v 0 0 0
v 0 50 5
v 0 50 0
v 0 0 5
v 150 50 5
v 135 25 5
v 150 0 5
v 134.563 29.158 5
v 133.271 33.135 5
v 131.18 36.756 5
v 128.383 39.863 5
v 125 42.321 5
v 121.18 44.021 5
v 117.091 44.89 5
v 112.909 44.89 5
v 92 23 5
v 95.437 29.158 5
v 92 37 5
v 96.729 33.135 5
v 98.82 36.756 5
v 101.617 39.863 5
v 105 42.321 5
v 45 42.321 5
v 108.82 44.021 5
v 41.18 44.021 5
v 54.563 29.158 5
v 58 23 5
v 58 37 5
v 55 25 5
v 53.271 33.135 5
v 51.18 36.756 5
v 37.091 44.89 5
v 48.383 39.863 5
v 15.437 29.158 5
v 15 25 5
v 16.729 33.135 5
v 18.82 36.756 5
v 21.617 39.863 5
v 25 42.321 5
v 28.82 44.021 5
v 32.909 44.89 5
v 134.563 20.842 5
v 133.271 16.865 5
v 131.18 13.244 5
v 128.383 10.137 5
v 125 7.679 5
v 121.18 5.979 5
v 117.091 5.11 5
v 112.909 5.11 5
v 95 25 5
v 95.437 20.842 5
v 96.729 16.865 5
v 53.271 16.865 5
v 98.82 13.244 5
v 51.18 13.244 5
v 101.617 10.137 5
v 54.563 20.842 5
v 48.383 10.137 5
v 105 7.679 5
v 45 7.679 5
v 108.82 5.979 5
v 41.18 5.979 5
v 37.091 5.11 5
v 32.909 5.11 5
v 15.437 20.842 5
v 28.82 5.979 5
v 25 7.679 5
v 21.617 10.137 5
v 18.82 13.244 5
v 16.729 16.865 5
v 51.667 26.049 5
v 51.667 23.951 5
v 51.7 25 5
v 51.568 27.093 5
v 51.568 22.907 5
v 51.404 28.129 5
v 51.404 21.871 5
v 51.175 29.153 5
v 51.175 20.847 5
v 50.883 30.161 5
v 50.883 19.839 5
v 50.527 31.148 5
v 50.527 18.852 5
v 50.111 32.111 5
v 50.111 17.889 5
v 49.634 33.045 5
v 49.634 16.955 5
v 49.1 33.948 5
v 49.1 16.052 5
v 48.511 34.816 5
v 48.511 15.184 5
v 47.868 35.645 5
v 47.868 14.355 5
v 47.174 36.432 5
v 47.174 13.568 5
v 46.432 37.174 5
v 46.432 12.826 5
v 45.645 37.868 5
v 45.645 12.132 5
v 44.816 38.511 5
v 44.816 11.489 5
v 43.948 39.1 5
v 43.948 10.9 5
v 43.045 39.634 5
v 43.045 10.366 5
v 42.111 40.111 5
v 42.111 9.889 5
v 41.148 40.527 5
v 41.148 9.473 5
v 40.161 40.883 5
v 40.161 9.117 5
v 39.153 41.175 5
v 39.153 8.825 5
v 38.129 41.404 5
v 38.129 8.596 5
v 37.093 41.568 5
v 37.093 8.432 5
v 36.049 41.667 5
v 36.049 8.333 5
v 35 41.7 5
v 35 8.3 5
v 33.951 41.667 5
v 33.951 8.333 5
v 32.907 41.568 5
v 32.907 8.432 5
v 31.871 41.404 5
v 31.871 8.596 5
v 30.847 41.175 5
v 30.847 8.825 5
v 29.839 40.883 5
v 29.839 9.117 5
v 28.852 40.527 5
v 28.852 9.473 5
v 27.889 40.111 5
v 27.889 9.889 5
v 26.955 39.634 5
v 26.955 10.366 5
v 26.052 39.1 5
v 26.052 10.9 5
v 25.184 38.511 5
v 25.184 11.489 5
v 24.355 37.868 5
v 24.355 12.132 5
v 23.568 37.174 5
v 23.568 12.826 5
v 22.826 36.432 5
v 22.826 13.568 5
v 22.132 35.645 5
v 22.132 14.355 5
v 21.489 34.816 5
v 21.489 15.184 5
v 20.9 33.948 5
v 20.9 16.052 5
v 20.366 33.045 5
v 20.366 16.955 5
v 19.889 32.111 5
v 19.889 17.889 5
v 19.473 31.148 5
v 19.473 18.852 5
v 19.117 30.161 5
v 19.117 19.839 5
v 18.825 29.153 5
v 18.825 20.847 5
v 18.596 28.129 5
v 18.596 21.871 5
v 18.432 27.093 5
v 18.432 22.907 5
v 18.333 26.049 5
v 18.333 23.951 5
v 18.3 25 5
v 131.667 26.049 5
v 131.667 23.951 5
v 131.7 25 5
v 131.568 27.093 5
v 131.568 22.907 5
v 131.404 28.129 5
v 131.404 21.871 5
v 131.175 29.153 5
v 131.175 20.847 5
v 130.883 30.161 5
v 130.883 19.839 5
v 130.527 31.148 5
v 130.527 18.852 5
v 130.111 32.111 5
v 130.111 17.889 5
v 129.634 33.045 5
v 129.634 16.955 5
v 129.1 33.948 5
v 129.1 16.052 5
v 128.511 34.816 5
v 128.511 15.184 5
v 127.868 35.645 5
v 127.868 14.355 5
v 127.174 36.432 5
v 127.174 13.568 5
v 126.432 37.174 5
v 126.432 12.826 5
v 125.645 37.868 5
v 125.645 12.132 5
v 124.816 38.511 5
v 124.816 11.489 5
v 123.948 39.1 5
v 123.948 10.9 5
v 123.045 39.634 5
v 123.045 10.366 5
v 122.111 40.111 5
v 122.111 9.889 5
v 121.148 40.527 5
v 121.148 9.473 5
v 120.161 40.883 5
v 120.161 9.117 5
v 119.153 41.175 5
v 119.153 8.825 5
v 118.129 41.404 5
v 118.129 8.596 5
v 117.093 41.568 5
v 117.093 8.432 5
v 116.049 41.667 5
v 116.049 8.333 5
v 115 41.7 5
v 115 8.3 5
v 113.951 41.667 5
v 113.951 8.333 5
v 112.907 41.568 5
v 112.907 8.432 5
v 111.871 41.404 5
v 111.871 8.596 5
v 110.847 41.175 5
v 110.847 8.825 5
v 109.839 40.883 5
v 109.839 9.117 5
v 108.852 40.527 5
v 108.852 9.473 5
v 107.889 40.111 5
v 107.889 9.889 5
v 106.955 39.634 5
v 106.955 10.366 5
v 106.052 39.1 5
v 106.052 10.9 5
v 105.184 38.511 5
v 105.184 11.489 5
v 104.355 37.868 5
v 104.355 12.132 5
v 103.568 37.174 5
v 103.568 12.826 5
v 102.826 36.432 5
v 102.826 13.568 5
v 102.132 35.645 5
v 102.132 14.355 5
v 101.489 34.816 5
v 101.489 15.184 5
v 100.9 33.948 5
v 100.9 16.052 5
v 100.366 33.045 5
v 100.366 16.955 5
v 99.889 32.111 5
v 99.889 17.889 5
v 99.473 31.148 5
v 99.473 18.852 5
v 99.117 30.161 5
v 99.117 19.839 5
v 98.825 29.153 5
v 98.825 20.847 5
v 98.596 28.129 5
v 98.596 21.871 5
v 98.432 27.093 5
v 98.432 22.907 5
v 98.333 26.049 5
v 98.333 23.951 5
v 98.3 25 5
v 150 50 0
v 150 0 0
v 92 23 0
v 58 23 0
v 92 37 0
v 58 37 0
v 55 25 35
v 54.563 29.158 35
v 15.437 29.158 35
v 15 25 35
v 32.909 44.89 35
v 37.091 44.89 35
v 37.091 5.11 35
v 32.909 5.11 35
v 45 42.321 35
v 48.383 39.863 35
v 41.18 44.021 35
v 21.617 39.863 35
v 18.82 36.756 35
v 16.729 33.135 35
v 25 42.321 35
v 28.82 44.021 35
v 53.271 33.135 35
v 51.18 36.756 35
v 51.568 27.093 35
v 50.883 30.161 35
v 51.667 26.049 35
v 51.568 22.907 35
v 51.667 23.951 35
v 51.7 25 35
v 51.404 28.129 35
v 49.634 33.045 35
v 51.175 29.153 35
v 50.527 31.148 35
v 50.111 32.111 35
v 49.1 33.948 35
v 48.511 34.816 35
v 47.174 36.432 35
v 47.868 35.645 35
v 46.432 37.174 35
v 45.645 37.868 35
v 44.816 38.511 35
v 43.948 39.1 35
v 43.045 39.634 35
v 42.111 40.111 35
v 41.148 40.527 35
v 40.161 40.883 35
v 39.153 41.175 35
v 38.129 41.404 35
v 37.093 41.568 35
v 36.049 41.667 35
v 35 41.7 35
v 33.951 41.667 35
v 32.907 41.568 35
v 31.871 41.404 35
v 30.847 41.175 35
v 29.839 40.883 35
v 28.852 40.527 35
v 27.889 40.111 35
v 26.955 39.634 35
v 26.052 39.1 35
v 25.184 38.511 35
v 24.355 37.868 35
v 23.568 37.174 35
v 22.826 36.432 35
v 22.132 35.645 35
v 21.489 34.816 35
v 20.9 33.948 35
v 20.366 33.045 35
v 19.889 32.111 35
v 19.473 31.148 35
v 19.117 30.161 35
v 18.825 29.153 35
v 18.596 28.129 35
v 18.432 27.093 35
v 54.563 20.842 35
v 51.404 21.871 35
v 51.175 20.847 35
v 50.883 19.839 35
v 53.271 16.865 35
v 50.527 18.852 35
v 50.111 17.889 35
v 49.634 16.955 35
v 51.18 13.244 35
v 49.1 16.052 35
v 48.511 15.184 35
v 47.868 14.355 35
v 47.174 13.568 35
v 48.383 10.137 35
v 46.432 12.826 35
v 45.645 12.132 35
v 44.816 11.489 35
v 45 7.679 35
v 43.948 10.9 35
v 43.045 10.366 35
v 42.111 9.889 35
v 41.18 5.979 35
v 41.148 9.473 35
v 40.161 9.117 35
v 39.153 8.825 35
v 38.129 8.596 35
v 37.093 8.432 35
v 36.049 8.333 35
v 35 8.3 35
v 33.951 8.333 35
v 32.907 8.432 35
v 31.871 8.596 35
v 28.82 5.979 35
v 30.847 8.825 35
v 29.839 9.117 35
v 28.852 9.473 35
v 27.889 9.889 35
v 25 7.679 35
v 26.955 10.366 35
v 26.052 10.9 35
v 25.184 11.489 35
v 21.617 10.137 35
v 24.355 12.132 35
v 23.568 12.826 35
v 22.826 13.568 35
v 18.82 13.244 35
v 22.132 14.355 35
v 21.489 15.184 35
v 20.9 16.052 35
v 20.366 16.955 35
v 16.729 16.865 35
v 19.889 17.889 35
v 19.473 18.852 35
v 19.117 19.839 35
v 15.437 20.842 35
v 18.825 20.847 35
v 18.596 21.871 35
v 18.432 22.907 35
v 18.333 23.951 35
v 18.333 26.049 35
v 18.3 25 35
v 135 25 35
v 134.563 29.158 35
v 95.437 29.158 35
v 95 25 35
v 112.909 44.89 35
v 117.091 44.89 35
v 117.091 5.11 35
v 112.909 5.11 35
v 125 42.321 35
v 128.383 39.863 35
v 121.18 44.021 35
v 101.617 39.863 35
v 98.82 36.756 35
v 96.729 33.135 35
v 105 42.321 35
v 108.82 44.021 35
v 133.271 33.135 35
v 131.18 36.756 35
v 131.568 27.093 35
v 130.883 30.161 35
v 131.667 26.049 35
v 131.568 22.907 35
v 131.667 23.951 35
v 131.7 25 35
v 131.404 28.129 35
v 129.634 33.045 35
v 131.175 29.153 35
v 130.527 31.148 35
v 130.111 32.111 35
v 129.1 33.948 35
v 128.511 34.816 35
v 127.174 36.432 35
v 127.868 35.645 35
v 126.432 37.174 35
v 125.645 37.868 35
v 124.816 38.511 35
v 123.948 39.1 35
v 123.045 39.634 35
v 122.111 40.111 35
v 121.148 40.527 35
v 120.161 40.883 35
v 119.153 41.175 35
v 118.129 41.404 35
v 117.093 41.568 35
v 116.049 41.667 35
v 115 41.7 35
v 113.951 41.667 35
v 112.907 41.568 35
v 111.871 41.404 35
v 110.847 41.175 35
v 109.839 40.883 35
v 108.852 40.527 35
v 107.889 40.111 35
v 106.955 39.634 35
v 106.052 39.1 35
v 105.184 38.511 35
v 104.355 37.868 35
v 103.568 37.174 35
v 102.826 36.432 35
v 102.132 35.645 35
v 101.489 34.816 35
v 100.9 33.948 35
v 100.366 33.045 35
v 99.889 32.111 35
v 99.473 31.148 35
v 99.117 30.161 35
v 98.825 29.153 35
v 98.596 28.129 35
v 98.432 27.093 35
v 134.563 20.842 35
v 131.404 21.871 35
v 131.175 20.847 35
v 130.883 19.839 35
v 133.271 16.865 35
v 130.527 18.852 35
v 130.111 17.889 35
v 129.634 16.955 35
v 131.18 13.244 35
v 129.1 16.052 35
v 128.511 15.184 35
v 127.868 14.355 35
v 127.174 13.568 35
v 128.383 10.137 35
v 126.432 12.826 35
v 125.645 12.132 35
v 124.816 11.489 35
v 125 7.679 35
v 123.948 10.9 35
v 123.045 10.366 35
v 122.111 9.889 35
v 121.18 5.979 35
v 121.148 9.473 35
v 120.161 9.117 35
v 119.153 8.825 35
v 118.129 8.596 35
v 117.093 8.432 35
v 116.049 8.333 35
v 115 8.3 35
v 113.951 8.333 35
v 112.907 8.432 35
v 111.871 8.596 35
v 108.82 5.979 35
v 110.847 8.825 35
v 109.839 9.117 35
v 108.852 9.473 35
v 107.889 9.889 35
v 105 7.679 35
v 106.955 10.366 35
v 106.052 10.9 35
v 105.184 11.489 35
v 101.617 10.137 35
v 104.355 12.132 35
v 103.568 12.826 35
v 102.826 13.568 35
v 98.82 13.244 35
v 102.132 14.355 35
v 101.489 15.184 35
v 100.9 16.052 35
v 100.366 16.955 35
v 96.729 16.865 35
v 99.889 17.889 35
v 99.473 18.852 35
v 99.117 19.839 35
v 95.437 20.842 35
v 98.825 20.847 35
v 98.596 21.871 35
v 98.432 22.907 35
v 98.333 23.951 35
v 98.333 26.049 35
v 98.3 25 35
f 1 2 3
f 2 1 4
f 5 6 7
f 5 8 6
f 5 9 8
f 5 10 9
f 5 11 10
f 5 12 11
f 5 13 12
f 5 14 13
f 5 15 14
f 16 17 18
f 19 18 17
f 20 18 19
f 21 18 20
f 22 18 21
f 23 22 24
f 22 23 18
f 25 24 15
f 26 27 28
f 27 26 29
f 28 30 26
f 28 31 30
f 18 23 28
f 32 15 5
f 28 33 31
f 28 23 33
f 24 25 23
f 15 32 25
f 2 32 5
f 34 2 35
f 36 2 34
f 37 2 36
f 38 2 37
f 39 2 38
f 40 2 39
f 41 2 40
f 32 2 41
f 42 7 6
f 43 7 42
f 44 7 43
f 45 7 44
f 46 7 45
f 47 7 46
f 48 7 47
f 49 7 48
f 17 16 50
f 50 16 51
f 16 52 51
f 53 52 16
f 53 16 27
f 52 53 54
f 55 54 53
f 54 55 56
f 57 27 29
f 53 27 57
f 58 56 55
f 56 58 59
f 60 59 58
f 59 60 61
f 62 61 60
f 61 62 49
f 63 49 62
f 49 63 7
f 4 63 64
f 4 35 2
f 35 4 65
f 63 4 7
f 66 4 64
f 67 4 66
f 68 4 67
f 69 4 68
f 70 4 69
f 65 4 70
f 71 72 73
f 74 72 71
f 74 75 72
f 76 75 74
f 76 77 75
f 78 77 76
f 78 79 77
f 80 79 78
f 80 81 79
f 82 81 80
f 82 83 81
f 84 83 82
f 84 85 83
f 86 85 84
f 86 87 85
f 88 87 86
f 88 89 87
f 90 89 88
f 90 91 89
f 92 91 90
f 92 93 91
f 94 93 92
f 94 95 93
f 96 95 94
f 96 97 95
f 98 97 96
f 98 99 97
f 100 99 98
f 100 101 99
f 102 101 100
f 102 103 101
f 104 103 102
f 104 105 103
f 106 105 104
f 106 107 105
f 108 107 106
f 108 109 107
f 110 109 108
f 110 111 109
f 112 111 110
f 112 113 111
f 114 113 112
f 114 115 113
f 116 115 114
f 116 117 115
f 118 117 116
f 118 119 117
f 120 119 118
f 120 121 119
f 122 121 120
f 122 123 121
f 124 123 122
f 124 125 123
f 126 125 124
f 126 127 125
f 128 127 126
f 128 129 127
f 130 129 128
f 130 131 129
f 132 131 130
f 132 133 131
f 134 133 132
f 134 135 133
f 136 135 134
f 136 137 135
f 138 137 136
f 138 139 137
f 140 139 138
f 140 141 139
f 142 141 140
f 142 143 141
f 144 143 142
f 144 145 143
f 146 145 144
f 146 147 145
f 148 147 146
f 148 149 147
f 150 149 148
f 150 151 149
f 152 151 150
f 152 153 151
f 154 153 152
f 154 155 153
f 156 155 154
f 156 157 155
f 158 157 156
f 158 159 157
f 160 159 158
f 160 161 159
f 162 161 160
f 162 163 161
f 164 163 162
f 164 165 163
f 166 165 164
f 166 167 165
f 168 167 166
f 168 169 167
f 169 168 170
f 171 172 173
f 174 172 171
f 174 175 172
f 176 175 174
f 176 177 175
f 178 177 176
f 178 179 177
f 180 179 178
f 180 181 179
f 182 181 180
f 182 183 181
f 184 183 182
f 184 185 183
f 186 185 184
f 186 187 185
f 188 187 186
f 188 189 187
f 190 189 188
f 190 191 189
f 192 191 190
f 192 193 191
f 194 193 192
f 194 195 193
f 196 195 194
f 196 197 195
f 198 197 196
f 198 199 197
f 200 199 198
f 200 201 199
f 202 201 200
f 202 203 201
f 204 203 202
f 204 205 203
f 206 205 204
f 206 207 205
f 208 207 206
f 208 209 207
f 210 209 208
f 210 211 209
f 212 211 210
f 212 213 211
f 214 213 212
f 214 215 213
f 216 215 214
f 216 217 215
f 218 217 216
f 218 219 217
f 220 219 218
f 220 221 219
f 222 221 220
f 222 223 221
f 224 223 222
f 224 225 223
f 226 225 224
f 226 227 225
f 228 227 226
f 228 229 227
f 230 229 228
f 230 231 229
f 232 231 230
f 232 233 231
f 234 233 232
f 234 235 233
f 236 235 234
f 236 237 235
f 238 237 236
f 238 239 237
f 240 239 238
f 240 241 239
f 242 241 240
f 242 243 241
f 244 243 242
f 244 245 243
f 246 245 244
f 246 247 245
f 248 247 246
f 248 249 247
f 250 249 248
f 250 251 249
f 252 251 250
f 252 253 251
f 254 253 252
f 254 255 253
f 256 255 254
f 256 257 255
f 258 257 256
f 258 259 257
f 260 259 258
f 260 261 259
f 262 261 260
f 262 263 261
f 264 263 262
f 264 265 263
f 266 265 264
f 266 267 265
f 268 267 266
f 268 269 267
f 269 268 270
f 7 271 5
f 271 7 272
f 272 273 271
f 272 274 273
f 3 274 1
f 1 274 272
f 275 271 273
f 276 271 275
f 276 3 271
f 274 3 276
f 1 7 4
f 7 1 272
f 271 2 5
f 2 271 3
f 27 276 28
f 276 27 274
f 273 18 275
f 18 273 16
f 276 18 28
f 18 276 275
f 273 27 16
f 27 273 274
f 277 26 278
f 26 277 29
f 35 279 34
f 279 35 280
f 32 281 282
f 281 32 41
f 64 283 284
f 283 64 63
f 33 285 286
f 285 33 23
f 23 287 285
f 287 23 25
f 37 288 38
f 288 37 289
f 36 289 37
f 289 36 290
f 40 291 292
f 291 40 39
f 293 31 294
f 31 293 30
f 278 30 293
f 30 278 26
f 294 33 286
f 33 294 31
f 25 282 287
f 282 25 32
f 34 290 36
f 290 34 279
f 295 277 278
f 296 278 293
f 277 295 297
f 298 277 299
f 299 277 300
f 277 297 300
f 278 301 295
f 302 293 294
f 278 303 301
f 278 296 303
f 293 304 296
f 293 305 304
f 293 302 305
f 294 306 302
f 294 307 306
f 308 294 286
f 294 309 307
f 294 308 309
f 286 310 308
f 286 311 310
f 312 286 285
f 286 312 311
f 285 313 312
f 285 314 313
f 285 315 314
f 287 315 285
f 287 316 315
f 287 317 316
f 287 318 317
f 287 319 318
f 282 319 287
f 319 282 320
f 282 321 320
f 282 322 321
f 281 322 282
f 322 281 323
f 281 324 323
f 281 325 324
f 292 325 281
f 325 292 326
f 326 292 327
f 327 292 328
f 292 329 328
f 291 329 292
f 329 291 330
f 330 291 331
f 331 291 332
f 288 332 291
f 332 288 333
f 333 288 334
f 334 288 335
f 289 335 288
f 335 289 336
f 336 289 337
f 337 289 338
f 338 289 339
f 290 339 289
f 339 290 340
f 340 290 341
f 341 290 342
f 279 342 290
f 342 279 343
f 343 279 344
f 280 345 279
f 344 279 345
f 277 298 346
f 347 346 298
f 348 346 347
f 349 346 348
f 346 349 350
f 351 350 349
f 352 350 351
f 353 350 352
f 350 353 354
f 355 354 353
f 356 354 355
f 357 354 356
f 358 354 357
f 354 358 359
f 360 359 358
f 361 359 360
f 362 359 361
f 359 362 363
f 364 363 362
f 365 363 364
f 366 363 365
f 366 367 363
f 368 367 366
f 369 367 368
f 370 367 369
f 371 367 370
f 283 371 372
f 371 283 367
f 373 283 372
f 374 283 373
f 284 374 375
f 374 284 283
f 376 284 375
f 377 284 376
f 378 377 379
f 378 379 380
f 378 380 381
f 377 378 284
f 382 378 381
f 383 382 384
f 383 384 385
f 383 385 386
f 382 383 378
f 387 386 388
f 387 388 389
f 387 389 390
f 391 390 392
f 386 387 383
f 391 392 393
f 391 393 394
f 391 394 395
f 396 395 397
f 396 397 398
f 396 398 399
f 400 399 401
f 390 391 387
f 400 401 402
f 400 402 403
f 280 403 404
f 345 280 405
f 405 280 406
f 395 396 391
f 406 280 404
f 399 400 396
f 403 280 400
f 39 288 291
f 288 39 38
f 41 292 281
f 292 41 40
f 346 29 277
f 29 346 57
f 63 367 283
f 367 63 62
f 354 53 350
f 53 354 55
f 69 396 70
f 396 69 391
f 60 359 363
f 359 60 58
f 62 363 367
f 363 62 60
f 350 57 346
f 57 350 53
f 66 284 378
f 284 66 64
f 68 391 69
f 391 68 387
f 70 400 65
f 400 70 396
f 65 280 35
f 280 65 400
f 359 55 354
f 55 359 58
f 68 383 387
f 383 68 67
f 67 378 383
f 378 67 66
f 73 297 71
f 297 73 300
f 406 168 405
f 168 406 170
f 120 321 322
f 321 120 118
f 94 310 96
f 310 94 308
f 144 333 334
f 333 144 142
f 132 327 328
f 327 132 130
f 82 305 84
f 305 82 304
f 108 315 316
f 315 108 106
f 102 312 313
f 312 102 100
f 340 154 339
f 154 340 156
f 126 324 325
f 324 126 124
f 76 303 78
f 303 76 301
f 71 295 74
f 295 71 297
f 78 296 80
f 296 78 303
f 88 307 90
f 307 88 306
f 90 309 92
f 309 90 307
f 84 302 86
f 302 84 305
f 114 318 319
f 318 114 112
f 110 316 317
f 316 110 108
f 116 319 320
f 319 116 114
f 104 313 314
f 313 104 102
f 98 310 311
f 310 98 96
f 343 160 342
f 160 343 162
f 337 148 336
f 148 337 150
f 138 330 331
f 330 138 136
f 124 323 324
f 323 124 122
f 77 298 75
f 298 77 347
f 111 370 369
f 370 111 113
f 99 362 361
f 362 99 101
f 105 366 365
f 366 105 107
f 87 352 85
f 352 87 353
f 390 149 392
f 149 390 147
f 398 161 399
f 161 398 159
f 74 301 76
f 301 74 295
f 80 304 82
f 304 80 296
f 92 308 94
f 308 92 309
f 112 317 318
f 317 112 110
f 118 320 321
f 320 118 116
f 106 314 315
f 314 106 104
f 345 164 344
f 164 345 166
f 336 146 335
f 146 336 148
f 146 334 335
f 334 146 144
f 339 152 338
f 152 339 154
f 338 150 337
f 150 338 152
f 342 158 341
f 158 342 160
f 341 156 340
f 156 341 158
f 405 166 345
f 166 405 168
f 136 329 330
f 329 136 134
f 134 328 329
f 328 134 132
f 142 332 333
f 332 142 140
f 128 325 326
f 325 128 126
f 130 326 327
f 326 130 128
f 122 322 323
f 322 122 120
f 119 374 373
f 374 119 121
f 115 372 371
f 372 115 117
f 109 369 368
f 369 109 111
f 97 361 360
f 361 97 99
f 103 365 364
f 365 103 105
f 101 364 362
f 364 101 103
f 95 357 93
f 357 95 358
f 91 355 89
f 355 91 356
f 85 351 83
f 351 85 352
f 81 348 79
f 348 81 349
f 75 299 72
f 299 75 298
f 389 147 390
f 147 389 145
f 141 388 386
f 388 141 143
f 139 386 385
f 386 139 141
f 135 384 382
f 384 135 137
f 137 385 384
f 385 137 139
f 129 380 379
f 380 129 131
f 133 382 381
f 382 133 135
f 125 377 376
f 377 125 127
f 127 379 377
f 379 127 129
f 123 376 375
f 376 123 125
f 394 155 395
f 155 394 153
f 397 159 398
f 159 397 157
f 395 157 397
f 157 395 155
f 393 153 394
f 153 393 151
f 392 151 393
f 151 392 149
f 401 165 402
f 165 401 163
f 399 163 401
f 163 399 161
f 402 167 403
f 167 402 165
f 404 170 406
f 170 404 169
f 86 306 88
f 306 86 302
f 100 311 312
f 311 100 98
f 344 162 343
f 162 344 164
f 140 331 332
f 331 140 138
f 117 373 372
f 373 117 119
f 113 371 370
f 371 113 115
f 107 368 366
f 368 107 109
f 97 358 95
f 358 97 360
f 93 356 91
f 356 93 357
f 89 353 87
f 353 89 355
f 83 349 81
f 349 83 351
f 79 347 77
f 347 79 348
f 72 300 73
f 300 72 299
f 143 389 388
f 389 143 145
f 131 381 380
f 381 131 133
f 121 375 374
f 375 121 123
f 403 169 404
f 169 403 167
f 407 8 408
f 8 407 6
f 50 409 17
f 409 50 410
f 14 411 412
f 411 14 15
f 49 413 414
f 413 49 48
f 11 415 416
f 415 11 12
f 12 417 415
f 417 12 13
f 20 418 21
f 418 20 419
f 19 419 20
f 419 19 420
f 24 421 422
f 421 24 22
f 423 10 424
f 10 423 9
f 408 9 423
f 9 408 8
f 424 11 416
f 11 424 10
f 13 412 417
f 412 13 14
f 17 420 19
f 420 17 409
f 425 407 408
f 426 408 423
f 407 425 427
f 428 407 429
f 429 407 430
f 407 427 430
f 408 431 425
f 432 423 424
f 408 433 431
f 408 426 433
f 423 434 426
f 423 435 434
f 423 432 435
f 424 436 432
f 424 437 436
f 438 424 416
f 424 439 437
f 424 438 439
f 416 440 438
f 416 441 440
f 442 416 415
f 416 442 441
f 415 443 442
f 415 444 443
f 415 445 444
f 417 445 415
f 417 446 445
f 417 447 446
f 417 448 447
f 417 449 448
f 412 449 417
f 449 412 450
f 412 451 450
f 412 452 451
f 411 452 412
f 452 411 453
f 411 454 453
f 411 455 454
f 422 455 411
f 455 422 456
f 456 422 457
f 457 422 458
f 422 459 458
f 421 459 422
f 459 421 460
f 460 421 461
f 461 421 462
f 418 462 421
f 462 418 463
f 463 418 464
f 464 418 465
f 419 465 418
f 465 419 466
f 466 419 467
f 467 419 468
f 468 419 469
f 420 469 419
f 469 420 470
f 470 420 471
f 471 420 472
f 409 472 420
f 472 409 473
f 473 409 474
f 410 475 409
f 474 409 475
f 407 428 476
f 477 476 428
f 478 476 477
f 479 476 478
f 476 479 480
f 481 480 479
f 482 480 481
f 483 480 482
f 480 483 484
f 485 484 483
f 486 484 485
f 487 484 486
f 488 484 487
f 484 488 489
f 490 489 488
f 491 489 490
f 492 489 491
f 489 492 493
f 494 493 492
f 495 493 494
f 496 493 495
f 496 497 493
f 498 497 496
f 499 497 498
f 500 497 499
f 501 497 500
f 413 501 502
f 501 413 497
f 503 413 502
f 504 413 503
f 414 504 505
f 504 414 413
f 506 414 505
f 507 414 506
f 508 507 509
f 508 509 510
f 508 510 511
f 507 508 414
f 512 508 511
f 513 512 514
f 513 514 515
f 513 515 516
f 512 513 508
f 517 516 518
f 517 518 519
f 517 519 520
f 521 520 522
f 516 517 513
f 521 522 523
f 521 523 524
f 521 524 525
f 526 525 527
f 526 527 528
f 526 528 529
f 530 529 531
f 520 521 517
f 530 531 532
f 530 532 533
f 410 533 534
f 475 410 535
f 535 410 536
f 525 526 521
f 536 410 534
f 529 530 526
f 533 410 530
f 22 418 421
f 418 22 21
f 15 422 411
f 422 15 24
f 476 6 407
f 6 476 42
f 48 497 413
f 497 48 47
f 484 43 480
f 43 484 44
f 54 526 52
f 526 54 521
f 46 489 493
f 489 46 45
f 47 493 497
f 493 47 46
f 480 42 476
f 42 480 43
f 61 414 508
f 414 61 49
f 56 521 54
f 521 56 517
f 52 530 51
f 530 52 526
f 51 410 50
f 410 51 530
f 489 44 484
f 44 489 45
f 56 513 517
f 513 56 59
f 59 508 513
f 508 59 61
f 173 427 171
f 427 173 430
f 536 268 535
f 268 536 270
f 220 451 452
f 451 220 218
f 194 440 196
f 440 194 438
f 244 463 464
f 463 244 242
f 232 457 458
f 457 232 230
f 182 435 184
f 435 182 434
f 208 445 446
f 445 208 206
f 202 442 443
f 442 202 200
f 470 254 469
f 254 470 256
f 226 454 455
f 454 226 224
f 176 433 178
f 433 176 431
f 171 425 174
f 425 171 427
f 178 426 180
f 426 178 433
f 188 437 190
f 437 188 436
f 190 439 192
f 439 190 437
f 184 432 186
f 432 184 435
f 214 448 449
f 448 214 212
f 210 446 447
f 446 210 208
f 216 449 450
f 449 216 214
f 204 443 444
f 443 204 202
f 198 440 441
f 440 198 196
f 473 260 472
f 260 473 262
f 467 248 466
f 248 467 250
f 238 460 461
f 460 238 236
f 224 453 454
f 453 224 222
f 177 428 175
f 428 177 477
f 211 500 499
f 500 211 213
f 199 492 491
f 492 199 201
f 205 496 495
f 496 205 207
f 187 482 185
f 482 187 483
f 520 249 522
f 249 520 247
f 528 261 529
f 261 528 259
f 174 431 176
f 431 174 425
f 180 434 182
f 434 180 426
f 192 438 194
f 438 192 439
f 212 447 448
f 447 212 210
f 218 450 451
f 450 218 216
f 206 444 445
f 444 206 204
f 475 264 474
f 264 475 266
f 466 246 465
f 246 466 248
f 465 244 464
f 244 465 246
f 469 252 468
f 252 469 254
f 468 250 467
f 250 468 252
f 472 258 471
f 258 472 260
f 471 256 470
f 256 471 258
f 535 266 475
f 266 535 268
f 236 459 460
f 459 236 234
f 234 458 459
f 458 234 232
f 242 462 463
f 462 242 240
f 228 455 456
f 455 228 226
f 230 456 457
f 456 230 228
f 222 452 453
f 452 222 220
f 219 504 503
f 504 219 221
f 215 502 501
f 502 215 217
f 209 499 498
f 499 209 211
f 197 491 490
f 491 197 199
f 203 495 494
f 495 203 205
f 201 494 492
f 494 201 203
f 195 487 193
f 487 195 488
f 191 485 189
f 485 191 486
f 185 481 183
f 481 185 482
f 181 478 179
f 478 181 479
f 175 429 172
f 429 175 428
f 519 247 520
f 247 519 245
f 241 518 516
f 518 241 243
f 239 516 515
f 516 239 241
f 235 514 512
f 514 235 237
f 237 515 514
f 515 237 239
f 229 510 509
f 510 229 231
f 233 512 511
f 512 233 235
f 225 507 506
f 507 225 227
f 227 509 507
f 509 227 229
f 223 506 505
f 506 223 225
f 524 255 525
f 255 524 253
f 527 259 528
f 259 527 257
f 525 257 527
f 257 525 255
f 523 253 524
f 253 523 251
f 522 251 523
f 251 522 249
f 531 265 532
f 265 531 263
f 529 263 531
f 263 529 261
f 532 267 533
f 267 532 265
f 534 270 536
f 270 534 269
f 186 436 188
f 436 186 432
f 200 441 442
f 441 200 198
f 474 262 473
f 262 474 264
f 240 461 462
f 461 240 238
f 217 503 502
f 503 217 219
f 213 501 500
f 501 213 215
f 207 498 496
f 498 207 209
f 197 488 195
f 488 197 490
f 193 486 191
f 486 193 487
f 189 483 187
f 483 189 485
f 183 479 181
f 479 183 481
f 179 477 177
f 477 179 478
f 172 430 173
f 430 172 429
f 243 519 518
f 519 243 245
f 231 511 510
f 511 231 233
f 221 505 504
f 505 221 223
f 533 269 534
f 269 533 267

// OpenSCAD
difference(){
cube([150,50,5]);
    translate([58,23,-5]){
    
        cube([34,14,100]);
}
}
translate([35,25,0]){
    rodholder();
}

translate([115,25,0]){
    rodholder();
}




module rodholder(){
    difference(){
        cylinder(35, 20, 20);
        translate([0,0,-5]){
            cylinder(45, 16.7, 16.7, $fn=100);
        }
    }
}
